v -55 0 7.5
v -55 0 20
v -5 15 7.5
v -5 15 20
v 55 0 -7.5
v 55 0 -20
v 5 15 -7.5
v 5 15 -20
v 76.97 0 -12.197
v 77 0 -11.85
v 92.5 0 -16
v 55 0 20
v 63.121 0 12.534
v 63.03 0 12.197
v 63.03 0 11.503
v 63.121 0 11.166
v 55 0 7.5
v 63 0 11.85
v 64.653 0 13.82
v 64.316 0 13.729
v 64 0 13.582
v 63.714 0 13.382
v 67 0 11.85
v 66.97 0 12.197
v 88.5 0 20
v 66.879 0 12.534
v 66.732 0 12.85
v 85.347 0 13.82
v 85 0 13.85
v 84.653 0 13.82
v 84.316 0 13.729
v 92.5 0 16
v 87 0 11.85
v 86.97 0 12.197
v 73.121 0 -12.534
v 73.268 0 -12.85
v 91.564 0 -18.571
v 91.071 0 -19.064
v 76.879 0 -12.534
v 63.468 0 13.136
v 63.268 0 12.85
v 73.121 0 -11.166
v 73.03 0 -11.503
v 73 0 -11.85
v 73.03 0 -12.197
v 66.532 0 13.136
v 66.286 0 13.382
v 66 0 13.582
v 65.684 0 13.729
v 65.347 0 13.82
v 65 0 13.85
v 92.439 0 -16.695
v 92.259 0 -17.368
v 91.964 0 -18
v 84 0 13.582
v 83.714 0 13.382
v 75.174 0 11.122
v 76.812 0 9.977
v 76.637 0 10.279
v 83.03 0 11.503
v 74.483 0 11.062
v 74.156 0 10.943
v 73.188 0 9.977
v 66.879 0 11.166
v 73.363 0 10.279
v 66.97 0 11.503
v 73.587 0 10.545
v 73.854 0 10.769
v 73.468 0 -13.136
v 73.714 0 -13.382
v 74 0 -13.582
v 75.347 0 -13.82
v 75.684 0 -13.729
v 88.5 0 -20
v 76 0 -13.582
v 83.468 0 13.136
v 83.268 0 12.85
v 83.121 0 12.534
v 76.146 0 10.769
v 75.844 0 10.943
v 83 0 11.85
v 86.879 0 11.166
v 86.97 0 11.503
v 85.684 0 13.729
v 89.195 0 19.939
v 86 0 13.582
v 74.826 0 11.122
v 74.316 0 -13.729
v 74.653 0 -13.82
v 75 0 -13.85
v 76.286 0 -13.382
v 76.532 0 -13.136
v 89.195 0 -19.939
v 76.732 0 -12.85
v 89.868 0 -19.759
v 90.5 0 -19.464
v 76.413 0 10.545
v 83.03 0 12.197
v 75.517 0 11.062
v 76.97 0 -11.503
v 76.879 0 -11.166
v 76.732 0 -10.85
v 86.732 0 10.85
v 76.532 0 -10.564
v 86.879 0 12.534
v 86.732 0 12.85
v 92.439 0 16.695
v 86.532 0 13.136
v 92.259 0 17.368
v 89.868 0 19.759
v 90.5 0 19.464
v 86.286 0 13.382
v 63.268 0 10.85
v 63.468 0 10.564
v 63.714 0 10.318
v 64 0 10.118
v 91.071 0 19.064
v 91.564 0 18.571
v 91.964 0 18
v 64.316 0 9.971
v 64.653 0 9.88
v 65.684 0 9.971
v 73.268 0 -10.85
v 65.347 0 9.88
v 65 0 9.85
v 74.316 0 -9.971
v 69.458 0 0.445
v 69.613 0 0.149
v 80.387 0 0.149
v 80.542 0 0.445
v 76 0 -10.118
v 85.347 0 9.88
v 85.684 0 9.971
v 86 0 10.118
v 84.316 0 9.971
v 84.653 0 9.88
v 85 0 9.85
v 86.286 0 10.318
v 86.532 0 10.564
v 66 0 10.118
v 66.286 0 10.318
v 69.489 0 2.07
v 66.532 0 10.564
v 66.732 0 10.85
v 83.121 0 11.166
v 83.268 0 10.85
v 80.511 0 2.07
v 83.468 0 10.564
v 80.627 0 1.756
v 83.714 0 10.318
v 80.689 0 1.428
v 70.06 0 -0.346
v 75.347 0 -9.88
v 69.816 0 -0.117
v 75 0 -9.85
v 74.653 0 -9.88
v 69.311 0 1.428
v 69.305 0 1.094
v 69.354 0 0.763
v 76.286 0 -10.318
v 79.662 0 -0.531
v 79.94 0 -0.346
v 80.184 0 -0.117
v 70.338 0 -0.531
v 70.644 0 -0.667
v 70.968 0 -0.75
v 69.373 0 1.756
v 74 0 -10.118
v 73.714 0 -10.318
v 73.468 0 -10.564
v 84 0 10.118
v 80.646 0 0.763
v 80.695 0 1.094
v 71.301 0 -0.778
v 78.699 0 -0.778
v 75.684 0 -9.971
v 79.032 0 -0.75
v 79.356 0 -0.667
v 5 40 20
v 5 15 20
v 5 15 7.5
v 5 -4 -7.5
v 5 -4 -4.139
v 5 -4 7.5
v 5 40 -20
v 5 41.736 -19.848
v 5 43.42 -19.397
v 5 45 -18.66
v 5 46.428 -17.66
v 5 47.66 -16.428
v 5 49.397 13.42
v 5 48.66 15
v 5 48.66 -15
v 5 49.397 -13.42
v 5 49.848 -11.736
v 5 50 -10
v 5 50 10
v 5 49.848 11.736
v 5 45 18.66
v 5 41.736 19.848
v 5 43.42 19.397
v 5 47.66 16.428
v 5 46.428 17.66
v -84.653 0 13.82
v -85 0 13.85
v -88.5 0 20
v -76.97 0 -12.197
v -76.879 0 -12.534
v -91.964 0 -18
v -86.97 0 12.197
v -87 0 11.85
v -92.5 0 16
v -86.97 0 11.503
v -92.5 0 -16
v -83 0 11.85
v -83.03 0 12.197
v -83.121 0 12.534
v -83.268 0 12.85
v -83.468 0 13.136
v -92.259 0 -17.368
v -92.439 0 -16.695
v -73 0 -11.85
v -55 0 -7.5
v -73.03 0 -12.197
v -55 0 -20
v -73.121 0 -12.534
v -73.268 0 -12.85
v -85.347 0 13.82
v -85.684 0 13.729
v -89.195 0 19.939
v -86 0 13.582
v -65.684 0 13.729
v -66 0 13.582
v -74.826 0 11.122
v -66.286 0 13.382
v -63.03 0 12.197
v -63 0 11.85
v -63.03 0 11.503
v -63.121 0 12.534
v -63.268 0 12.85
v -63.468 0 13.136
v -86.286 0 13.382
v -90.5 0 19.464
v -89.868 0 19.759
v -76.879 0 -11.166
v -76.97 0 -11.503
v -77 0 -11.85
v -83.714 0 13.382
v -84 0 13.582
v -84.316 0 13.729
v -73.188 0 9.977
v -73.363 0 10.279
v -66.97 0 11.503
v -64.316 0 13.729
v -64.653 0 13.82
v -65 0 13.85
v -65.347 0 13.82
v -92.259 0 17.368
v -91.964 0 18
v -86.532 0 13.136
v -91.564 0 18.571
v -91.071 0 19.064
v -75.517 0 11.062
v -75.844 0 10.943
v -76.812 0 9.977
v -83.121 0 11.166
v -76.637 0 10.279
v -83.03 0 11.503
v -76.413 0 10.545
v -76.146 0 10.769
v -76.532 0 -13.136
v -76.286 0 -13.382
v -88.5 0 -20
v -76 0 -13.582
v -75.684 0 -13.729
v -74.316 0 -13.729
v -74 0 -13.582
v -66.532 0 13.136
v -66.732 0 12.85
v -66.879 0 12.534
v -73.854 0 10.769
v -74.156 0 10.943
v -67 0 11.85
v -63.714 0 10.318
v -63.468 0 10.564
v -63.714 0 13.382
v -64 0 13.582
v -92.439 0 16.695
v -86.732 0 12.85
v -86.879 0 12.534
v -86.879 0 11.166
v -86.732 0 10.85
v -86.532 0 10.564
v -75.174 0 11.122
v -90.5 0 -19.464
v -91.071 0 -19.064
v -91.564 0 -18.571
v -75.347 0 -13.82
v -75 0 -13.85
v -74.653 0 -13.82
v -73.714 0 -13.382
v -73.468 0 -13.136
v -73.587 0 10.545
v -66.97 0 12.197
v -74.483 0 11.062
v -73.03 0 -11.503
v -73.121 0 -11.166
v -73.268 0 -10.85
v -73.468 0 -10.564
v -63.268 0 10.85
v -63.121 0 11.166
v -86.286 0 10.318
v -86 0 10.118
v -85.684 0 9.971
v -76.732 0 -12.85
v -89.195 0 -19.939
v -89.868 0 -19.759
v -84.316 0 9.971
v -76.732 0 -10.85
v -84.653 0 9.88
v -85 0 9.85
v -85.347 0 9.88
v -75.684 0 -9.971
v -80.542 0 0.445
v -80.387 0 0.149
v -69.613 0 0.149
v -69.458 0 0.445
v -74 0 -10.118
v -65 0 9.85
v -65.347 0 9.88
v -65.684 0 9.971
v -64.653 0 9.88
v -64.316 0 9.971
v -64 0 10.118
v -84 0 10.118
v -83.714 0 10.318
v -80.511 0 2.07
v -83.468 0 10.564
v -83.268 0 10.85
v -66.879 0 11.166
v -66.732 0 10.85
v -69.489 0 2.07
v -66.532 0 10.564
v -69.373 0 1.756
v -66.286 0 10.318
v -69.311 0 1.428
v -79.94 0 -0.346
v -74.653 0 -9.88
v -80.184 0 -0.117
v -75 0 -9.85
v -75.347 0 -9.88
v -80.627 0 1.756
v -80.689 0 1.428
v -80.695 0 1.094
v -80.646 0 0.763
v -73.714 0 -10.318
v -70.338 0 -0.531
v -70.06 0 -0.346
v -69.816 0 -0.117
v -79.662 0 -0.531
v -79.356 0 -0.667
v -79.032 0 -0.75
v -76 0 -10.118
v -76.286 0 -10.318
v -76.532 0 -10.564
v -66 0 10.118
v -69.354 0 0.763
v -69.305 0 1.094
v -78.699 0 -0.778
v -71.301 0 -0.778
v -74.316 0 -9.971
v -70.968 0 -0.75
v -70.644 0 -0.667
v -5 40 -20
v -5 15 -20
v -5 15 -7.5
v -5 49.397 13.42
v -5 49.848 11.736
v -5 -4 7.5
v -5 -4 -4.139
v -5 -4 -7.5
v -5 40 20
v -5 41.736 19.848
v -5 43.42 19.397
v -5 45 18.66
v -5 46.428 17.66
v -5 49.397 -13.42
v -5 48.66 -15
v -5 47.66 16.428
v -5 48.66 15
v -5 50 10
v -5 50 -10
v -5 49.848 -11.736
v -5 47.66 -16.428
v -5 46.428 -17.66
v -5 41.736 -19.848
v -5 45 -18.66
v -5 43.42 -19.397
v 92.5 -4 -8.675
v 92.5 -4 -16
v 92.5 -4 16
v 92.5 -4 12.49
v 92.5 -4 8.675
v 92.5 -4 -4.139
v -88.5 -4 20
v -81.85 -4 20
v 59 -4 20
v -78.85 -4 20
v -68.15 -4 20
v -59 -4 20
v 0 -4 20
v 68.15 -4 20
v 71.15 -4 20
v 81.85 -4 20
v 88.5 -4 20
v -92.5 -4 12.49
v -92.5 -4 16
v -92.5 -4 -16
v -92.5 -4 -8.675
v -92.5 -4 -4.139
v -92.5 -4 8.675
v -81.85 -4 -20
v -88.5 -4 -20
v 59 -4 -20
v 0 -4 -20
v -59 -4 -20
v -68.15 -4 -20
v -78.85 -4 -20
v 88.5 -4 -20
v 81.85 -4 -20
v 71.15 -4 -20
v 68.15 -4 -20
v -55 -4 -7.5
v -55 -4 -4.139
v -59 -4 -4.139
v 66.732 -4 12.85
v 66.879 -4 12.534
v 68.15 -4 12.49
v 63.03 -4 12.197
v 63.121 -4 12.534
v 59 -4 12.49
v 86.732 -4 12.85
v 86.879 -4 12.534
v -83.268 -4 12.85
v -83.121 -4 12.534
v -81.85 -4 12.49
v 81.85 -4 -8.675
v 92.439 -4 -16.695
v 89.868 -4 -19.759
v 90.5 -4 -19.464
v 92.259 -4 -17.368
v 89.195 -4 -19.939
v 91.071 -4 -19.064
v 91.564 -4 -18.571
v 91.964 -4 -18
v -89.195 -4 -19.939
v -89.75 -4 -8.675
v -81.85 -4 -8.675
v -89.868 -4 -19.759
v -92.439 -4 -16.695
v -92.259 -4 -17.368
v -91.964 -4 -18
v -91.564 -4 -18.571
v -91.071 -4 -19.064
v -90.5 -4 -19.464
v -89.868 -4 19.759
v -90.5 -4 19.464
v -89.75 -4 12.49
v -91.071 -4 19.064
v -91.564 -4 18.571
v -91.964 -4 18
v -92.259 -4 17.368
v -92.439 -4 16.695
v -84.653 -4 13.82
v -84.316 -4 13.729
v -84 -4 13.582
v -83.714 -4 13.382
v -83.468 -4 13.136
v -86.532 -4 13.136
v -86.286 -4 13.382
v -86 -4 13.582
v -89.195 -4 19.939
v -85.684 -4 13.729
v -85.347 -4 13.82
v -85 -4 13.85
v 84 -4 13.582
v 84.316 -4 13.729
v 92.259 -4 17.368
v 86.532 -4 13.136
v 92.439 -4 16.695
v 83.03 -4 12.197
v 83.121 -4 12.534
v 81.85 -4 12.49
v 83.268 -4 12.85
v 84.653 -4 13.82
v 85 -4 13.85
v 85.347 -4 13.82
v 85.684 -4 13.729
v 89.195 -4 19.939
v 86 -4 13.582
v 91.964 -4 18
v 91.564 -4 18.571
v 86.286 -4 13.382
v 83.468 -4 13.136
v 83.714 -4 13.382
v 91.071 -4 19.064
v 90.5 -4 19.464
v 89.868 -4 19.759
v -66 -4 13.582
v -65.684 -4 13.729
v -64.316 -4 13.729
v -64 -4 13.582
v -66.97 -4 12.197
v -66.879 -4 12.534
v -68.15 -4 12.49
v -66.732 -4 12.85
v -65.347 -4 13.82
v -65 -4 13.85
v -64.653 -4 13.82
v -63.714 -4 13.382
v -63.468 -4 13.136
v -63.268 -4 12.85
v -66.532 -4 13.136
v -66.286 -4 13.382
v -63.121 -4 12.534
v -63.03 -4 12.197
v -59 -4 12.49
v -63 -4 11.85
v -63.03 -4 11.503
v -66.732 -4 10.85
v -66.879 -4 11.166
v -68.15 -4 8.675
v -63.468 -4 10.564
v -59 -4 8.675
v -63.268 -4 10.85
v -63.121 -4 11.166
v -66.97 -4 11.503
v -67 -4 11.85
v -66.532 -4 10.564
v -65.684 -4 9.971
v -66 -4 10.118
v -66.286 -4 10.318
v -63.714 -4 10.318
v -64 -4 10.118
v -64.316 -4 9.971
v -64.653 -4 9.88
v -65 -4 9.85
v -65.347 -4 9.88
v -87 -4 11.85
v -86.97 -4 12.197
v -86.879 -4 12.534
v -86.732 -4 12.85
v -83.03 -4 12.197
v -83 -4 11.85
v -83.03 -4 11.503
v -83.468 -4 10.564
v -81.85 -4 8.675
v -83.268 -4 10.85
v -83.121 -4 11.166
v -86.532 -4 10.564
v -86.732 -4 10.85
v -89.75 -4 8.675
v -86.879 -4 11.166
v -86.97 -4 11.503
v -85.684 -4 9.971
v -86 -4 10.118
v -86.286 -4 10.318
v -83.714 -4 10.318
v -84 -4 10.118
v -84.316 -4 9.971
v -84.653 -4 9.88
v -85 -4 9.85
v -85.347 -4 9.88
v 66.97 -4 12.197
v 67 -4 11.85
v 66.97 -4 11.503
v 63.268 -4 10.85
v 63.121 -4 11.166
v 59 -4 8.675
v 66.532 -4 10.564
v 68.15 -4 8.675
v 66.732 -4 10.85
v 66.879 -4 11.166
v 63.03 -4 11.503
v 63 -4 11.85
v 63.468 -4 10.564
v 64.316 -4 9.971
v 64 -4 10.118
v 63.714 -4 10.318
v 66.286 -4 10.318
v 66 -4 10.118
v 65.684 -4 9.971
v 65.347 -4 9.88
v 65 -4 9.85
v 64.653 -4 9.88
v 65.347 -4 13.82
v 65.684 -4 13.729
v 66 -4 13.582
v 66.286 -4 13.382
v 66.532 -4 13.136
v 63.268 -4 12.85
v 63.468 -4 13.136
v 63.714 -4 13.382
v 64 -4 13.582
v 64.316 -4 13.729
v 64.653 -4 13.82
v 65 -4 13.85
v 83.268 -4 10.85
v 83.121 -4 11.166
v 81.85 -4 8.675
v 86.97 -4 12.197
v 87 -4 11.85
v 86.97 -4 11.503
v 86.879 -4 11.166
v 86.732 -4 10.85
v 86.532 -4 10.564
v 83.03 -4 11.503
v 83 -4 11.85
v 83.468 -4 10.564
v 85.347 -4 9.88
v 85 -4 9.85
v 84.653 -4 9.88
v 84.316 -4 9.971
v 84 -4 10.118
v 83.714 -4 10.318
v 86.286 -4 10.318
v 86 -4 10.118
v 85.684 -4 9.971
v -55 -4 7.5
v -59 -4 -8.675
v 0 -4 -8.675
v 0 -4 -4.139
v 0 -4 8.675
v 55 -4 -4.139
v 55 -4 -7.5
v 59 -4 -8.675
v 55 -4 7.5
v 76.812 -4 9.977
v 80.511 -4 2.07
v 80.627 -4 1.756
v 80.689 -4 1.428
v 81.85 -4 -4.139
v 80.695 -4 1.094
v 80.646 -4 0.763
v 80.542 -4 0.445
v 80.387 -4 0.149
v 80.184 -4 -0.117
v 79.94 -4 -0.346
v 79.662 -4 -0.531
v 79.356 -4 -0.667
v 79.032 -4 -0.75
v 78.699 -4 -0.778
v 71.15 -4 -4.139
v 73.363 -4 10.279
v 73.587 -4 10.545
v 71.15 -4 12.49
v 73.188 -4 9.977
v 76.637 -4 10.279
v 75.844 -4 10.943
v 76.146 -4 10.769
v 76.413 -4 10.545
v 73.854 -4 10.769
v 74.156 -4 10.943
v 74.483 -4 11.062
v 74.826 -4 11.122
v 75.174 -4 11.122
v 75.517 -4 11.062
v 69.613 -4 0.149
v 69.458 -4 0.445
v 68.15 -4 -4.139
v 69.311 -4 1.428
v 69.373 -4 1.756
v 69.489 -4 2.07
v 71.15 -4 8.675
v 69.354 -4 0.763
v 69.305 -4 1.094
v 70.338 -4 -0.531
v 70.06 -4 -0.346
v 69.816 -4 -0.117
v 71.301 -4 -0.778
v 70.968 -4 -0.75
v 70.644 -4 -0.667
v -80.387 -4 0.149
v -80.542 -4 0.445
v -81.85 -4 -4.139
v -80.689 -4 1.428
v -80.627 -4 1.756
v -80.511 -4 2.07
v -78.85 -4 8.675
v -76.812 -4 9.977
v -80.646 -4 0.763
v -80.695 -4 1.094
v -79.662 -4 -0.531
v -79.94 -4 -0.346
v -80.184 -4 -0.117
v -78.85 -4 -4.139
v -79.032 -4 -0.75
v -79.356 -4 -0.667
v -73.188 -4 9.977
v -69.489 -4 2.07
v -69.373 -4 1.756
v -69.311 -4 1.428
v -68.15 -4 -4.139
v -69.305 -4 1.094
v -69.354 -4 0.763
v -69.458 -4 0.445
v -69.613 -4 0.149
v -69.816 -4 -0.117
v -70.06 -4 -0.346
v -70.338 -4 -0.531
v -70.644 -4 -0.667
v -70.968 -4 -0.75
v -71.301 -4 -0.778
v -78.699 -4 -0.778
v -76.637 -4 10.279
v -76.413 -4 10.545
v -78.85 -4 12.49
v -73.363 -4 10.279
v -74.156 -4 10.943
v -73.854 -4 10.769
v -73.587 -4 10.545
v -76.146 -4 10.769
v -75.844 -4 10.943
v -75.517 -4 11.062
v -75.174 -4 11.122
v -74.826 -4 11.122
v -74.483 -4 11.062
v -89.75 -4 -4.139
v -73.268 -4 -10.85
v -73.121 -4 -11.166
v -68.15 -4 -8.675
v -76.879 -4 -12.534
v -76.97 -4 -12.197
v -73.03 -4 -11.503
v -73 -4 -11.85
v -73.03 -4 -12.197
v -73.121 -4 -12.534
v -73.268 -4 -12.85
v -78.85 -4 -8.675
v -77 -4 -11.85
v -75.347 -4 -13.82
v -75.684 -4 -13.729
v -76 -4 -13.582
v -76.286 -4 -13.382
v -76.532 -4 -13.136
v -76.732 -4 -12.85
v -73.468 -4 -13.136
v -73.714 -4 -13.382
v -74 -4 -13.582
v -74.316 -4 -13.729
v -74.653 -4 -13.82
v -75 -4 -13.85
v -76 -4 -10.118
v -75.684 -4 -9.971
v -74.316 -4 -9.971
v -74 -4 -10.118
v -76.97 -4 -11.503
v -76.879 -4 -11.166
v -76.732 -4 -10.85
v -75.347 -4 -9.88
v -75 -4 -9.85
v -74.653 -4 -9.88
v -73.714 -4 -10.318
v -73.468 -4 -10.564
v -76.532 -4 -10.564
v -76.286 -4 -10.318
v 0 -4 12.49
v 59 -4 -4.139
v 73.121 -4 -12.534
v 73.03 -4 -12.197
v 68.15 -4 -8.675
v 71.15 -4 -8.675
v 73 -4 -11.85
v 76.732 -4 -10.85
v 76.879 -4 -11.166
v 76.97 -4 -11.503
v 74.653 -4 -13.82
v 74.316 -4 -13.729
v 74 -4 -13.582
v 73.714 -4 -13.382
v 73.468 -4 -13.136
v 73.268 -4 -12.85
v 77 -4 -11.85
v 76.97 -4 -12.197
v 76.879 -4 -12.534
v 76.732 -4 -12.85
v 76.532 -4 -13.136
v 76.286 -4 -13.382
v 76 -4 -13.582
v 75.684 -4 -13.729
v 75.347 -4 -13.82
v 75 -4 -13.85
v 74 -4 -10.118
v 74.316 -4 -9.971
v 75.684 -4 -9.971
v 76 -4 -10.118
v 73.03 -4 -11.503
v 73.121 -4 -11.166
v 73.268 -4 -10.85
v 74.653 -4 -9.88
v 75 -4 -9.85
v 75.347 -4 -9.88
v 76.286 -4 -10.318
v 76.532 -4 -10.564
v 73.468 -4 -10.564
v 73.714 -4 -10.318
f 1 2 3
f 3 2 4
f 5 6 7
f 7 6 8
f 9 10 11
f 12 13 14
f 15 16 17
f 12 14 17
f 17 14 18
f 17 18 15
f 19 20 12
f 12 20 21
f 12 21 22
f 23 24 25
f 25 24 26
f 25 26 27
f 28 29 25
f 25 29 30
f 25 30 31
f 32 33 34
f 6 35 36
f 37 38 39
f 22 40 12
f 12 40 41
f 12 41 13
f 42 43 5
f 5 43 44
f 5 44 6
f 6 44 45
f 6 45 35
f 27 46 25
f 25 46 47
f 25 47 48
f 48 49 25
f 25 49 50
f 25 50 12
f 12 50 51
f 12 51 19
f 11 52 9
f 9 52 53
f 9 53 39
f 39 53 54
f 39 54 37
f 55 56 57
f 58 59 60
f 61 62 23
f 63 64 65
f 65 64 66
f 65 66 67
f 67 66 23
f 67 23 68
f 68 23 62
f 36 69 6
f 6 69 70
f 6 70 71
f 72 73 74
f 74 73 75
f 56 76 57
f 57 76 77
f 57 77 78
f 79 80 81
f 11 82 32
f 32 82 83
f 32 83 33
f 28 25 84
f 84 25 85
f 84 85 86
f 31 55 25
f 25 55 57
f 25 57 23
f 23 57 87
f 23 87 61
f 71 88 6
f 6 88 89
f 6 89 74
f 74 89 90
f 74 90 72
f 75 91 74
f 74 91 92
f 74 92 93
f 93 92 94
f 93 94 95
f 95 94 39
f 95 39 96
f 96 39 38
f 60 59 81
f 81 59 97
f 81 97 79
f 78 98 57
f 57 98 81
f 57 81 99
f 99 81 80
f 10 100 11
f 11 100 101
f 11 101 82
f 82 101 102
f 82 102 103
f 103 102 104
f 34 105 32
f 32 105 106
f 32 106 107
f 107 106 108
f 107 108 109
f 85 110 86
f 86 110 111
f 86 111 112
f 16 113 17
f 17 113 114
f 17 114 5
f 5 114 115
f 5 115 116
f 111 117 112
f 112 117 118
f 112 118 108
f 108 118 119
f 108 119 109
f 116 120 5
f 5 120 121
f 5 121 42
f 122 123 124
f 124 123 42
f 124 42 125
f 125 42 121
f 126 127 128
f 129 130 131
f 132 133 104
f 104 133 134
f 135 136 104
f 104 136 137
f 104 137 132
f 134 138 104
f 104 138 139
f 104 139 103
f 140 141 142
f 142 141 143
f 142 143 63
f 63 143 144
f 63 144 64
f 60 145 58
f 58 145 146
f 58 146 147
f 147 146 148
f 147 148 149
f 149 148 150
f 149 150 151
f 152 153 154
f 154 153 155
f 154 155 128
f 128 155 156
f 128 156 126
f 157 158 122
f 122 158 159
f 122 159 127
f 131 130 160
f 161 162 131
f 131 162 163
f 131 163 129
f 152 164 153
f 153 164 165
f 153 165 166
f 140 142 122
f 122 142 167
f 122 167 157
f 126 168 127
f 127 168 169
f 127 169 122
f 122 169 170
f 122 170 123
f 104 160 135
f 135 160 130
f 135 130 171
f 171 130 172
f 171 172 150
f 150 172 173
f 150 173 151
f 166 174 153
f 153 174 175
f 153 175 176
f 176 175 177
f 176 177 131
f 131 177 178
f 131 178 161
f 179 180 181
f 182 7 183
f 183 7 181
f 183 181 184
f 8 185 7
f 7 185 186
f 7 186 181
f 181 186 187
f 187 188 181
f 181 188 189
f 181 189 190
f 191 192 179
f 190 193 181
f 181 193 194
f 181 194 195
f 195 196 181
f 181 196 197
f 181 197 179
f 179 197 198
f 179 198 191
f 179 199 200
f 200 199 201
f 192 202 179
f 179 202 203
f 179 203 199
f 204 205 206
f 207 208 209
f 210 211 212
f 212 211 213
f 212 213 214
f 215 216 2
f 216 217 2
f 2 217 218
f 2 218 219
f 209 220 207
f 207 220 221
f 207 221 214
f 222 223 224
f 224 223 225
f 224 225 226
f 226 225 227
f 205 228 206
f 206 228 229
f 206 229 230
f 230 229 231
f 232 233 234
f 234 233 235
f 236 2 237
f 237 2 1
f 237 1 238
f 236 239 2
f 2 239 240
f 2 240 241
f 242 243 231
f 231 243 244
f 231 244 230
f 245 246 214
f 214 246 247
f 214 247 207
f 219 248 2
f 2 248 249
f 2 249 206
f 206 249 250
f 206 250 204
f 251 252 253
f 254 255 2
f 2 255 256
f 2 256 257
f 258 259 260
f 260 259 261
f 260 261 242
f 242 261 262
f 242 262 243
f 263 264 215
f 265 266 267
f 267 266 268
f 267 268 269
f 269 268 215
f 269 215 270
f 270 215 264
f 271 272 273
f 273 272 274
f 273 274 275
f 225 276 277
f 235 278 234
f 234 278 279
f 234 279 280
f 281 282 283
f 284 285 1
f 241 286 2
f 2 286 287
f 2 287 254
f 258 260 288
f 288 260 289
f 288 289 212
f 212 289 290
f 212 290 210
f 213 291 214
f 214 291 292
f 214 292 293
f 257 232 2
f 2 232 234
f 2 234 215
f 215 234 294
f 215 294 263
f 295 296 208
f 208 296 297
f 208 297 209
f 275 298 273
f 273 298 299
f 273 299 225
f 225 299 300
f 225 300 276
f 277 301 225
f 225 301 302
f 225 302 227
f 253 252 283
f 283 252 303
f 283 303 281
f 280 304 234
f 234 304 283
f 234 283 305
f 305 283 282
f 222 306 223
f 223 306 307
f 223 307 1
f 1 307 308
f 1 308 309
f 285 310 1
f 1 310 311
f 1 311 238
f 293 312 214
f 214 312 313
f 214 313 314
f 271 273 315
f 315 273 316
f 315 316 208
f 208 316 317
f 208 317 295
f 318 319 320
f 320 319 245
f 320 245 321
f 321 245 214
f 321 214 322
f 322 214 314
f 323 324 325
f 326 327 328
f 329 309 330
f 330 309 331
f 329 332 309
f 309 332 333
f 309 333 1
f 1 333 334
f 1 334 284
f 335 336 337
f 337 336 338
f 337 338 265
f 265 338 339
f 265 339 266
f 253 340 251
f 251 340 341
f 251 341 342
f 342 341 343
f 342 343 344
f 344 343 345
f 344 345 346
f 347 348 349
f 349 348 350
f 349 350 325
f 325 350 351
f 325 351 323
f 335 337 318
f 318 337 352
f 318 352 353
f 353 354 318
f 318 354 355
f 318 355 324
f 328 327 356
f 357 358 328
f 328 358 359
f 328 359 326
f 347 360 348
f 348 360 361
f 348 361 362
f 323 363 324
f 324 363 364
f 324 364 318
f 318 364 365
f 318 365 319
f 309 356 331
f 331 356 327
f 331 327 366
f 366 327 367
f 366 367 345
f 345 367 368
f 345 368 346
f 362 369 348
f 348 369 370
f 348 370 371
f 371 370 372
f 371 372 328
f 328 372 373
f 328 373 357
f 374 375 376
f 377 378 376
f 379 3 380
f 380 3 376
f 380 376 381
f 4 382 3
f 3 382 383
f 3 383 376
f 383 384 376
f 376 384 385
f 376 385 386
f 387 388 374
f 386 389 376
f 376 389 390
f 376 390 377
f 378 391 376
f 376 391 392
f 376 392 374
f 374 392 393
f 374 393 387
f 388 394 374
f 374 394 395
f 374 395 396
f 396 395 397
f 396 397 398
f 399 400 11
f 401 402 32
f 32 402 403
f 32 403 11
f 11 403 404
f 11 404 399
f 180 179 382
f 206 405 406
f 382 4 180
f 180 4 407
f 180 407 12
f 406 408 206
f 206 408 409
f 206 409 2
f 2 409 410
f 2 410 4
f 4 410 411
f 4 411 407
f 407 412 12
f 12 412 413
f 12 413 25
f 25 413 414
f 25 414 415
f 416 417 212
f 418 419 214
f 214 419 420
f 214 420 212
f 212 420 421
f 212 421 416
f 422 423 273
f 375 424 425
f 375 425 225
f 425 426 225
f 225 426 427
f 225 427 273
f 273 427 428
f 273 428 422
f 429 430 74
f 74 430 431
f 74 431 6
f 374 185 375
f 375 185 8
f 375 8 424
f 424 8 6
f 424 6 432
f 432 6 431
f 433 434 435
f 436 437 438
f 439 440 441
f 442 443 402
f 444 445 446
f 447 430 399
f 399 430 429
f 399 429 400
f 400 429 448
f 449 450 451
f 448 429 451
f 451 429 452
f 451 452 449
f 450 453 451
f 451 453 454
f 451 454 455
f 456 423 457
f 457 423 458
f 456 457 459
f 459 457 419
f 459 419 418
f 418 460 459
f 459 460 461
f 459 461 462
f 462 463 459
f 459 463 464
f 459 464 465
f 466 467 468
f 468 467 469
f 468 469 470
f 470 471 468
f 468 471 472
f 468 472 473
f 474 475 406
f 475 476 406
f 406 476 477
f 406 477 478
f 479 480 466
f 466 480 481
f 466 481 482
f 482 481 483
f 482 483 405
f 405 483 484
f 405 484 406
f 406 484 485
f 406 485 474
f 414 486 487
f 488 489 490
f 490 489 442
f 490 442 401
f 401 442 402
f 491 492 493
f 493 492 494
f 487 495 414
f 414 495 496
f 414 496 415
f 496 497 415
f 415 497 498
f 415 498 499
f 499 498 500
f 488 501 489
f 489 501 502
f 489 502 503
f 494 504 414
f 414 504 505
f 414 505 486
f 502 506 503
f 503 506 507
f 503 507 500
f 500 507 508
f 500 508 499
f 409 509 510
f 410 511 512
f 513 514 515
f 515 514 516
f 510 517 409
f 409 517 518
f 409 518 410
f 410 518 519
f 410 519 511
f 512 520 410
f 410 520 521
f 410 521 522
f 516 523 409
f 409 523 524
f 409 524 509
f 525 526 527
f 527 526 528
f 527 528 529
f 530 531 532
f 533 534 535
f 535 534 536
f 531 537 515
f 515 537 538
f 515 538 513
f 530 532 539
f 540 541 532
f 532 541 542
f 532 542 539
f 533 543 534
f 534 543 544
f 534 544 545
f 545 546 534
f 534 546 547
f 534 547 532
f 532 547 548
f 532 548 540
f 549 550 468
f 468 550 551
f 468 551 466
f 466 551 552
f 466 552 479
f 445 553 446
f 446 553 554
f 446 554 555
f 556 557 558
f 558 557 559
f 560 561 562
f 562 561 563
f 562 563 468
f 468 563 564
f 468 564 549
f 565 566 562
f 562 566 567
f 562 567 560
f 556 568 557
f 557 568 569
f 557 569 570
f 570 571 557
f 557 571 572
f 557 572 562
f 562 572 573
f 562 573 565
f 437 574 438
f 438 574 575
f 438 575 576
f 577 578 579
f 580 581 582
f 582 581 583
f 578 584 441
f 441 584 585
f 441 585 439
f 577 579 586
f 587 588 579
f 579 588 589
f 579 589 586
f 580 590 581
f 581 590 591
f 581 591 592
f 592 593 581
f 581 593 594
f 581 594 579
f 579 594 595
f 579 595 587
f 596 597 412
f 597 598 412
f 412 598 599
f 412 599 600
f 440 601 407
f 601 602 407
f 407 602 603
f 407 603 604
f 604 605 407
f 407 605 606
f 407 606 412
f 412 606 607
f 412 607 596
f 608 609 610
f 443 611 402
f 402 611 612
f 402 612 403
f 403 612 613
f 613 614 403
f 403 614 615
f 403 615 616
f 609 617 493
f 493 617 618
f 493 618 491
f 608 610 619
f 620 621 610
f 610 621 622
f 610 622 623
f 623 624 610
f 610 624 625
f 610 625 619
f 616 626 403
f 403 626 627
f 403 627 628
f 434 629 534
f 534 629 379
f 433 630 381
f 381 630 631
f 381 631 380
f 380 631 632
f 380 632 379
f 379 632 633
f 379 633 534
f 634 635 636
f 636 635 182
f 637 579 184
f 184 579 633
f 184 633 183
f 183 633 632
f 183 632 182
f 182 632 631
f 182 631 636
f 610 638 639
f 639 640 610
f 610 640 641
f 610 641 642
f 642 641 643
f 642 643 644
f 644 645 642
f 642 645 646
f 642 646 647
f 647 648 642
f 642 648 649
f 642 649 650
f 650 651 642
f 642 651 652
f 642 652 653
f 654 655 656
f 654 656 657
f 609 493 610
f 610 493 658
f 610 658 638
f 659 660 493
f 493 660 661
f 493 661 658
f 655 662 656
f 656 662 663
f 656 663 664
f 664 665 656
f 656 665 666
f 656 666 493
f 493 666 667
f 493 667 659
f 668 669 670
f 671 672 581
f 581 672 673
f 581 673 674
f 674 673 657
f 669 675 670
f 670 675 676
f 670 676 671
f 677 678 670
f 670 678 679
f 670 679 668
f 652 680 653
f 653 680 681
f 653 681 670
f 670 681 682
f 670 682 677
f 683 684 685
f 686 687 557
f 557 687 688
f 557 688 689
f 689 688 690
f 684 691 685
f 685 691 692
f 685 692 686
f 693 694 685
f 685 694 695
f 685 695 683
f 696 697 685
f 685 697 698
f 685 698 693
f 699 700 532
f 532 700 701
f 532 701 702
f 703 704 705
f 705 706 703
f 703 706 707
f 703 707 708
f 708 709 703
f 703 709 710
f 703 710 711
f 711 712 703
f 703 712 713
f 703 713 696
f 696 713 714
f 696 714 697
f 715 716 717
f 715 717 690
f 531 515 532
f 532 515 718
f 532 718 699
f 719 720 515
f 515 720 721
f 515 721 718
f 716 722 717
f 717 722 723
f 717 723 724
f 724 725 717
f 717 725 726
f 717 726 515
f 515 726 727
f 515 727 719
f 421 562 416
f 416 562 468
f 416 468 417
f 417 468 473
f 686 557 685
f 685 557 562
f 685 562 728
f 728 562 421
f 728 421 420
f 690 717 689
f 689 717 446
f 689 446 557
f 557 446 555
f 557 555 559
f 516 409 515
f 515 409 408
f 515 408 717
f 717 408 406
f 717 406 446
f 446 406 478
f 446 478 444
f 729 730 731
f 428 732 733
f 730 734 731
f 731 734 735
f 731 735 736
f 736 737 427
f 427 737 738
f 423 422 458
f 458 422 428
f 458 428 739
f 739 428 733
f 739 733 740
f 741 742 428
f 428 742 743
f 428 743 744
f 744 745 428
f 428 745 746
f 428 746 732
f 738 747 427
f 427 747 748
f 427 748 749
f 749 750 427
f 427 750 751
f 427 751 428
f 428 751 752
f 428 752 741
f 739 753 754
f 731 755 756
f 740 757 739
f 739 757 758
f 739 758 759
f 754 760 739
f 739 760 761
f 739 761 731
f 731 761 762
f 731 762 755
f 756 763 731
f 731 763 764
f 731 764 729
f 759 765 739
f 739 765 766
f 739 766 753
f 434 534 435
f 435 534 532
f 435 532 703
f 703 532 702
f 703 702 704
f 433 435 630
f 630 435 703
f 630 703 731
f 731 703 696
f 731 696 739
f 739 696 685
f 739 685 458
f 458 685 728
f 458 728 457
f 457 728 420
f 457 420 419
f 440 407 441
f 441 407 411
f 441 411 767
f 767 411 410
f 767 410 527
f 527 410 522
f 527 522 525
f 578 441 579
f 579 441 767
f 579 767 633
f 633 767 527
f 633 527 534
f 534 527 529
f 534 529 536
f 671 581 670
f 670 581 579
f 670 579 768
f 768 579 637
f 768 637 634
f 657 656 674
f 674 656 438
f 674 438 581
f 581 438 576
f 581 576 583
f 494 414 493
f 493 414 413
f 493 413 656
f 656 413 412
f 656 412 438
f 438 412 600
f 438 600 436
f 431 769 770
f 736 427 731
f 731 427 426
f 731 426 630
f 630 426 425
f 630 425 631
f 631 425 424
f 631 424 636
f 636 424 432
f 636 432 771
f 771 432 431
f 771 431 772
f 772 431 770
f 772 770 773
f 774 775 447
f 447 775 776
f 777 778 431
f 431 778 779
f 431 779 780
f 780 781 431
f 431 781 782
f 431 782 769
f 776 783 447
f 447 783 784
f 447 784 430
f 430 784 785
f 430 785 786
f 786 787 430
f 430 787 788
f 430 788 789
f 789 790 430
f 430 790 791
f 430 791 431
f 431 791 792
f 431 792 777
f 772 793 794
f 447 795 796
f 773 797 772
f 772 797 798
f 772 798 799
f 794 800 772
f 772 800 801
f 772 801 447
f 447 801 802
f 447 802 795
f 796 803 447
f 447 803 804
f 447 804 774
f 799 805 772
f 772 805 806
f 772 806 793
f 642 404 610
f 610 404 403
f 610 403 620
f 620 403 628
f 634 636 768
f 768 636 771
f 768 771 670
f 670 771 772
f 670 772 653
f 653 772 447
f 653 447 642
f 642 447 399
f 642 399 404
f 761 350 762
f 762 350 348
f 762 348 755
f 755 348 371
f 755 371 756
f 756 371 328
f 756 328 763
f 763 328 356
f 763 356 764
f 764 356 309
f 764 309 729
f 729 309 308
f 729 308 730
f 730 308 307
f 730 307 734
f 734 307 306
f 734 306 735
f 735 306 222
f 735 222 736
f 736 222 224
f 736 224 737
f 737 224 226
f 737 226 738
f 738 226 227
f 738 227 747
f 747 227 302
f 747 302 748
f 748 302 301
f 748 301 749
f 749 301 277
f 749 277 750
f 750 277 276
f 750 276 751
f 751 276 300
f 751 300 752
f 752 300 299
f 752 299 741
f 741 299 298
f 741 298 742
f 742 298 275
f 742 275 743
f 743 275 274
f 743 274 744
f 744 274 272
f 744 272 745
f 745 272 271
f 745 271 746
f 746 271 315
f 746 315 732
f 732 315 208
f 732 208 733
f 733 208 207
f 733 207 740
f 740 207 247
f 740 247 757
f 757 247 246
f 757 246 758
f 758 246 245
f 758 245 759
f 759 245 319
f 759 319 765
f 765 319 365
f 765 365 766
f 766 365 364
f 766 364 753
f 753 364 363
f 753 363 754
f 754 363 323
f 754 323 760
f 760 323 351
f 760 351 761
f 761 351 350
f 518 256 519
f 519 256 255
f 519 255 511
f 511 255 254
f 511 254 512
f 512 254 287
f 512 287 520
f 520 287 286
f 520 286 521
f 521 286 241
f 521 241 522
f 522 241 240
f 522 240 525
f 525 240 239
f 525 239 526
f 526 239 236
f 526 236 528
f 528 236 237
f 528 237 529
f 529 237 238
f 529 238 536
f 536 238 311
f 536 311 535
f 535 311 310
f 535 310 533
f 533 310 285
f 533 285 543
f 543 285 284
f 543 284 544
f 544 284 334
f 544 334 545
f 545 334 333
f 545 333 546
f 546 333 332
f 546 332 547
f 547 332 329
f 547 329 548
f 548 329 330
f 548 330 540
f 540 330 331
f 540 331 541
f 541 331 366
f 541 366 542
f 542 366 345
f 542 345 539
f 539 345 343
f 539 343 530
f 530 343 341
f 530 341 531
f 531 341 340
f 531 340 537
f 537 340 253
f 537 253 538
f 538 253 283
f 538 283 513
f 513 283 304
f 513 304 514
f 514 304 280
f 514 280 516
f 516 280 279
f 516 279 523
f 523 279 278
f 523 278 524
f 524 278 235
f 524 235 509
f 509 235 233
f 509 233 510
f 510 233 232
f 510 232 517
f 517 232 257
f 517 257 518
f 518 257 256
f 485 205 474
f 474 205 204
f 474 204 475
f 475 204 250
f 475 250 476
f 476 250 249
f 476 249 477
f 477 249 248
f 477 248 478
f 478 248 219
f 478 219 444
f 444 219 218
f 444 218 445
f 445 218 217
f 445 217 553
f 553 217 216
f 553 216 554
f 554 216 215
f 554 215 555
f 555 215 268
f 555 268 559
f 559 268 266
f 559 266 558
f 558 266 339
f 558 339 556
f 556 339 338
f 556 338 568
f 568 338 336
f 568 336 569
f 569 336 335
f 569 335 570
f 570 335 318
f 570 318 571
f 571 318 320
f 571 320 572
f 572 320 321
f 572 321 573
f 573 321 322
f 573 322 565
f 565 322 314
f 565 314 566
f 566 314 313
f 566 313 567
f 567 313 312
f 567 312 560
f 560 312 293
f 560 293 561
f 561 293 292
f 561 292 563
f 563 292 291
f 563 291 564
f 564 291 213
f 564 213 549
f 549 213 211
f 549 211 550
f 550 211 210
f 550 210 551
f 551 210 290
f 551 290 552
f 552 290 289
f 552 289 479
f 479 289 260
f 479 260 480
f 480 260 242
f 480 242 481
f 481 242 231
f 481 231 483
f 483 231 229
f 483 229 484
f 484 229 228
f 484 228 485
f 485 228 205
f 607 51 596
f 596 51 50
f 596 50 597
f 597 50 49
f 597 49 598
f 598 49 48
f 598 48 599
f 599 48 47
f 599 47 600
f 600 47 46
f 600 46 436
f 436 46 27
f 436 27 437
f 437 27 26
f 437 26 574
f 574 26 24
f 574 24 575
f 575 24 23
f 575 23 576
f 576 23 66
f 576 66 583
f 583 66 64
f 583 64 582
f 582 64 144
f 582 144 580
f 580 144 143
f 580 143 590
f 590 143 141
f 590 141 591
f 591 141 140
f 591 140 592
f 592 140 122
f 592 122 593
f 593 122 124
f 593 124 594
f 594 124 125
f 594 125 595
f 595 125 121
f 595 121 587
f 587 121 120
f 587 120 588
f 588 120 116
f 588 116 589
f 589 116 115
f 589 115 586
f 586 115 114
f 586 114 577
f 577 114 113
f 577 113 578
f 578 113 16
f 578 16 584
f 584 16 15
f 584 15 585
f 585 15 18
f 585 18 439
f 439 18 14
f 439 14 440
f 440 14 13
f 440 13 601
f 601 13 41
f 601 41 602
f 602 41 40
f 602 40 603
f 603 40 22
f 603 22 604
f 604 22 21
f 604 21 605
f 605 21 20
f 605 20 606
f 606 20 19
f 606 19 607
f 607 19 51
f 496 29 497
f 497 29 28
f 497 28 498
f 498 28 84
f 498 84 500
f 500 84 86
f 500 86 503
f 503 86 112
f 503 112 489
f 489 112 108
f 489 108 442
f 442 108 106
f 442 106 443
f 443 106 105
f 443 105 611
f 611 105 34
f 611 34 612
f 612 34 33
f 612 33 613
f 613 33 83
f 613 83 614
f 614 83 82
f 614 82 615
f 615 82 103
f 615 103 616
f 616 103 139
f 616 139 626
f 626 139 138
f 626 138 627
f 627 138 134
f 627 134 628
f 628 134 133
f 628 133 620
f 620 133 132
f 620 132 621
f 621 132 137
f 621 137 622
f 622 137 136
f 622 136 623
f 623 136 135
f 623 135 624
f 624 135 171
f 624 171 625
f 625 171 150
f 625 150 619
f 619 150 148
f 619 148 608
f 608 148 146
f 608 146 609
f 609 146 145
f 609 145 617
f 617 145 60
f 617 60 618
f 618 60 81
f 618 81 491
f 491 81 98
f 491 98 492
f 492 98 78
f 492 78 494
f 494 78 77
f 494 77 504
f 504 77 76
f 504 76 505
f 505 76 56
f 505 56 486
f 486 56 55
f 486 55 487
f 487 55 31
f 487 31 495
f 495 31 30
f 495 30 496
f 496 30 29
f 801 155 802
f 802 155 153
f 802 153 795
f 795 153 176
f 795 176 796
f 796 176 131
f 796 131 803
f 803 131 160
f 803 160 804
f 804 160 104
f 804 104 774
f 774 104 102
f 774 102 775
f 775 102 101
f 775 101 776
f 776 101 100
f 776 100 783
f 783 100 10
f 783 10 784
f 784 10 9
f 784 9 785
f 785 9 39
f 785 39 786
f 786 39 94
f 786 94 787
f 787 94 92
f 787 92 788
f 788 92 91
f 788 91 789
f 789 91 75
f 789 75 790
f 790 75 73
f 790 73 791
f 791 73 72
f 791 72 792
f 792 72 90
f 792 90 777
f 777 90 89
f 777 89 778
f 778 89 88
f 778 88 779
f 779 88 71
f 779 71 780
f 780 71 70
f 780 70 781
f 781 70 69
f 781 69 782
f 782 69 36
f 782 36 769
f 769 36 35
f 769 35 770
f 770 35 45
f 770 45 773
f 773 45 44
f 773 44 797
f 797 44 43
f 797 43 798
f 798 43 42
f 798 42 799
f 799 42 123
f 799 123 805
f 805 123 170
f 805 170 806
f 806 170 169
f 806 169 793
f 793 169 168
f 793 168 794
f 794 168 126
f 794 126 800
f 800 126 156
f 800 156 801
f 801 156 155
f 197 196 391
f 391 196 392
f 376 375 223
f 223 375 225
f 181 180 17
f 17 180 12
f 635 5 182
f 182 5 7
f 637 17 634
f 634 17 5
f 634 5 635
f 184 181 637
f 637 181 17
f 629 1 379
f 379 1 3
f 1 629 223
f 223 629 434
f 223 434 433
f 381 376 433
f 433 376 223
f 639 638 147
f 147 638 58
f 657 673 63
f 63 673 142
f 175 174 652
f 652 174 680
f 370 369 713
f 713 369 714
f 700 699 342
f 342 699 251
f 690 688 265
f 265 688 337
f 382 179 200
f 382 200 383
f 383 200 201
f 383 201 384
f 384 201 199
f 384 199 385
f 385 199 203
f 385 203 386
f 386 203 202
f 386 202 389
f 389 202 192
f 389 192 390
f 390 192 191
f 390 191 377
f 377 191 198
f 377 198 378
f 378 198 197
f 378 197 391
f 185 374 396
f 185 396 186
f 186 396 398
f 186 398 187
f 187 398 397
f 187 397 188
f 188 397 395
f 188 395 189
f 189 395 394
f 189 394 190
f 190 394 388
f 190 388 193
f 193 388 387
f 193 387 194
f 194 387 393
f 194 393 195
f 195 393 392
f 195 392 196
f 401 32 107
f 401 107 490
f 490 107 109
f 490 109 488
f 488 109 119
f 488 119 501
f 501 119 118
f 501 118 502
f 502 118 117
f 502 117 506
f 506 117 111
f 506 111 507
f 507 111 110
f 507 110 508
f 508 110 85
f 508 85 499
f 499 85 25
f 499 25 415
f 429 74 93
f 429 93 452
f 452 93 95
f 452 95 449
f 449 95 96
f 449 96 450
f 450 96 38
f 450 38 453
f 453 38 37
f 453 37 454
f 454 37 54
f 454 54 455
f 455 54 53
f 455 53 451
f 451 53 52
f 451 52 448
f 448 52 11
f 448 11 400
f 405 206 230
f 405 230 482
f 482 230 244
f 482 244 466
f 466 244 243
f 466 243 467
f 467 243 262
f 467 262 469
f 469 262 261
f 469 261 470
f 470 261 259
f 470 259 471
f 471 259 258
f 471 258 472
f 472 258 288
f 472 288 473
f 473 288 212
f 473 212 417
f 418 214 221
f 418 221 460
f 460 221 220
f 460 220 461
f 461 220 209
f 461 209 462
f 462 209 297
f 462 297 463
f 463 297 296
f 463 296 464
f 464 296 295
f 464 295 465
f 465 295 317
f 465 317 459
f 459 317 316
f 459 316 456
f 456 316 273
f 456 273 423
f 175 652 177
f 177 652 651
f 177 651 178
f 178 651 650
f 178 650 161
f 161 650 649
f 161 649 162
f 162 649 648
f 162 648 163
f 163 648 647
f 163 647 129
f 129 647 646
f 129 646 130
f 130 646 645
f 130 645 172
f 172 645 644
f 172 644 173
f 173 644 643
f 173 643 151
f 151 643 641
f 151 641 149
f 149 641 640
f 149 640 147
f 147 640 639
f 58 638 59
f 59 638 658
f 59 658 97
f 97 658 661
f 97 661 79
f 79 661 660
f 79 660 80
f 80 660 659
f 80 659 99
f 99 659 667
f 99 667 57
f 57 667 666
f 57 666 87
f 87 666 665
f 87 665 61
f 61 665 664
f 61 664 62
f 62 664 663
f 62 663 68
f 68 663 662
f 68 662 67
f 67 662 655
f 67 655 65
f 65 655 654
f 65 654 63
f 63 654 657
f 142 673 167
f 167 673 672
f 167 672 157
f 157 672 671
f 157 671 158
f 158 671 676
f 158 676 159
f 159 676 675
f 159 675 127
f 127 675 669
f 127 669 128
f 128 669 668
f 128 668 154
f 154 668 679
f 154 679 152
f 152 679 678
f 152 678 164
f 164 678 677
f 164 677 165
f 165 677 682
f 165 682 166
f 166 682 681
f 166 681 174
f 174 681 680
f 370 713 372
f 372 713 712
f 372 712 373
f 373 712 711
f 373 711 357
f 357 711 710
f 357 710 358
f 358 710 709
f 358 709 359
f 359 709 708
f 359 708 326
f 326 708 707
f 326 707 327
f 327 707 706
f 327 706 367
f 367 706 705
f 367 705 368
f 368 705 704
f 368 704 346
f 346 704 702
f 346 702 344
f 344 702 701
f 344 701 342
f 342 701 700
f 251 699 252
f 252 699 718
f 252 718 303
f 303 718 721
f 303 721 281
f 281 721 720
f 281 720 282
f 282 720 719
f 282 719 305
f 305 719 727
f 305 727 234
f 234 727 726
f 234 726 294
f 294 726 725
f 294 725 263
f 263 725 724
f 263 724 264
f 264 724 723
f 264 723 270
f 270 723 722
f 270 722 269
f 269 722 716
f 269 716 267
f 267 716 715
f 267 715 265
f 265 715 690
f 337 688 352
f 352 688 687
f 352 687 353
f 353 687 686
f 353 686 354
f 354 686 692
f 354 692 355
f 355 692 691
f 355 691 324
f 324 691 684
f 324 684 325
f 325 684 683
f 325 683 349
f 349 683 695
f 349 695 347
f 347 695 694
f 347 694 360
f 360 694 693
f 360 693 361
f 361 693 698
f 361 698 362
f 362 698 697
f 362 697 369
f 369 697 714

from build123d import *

# Parameters (mm, degrees)
SKETCH_1_W               = 185
SKETCH_1_H               = 40
EXTRUDE_1_DEPTH          = 4
CUT_EXTRUDE_1_DEPTH      = 95.721961551
CUT_EXTRUDE_1_DEPTH_BACK = 95.721961551
SKETCH_2_R               = 2
SKETCH_3_W               = 10
SKETCH_3_H               = 40
EXTRUDE_2_DEPTH          = 50
EXTRUDE_3_DEPTH          = 20
CUT_EXTRUDE_2_DEPTH      = 108.033873143
CUT_EXTRUDE_2_DEPTH_BACK = 108.033873143
SKETCH_5_W               = 50
SKETCH_5_H               = 15
FILLET_1_R               = 10
FILLET_2_R               = 4
FILLET_3_R               = 2


with BuildPart() as part:
    # 草图1 → 凸台-拉伸1 (new body)
    with BuildSketch(Plane(origin=(0, 0, 0), x_dir=(1, 0, 0), z_dir=(0, 1, 0))):
        Rectangle(SKETCH_1_W, SKETCH_1_H)
    extrude(amount=-EXTRUDE_1_DEPTH)

    # 草图2 → 切除-拉伸1 (cut, two sides: drawn at the far end of the back side and taken through both)
    with BuildSketch(Plane(origin=(0, 0, 0), x_dir=(1, 0, 0), z_dir=(0, 1, 0)).offset(-CUT_EXTRUDE_1_DEPTH_BACK)):
        with Locations(Location((-75, 11.85, 0), (0, 0, 270))):
            Circle(SKETCH_2_R)
        with Locations(Location((-65, -11.85, 0), (0, 0, 270))):
            Circle(SKETCH_2_R)
        with Locations(Location((-85, -11.85, 0), (0, 0, 270))):
            Circle(SKETCH_2_R)
        with Locations(Location((65, -11.85, 0), (0, 0, 270))):
            Circle(SKETCH_2_R)
        with Locations(Location((85, -11.85, 0), (0, 0, 270))):
            Circle(SKETCH_2_R)
        with Locations(Location((75, 11.85, 0), (0, 0, 270))):
            Circle(SKETCH_2_R)
    extrude(amount=CUT_EXTRUDE_1_DEPTH + CUT_EXTRUDE_1_DEPTH_BACK, mode=Mode.SUBTRACT)

    # 草图3 → 凸台-拉伸2 (add)
    with BuildSketch(Plane(origin=(0, 0, 0), x_dir=(1, 0, 0), z_dir=(0, 1, 0))):
        Rectangle(SKETCH_3_W, SKETCH_3_H)
    extrude(amount=EXTRUDE_2_DEPTH)

    # 草图4 → 凸台-拉伸3 (add, symmetric)
    with BuildSketch(Plane.XY):
        Polygon((-5, 0), (-5, 15), (-55, 0), align=None)
        Polygon((5, 15), (55, 0), (5, 0), align=None)
    extrude(amount=EXTRUDE_3_DEPTH, both=True)

    # 草图5 → 切除-拉伸2 (cut, two sides: drawn at the far end of the back side and taken through both)
    with BuildSketch(Plane(origin=(0, 0, 0), x_dir=(1, 0, 0), z_dir=(0, 1, 0)).offset(-CUT_EXTRUDE_2_DEPTH_BACK)):
        with Locations((-30, 0)):
            Rectangle(SKETCH_5_W, SKETCH_5_H)
        Polygon((-81.842684811, 0.77750414), (-75, -13.85), (-68.157315189, 0.77750414), align=None)
        Polygon((75, -13.85), (68.157315189, 0.77750414), (81.842684811, 0.77750414), align=None)
        with Locations((30, 0)):
            Rectangle(SKETCH_5_W, SKETCH_5_H)
    extrude(amount=CUT_EXTRUDE_2_DEPTH + CUT_EXTRUDE_2_DEPTH_BACK, mode=Mode.SUBTRACT)

    # 圆角1
    fillet_1_edges = [part.edges().sort_by_distance(p)[0] for p in [
        (0, 50, -20),
        (0, 50, 20),
    ]]
    fillet(fillet_1_edges, radius=FILLET_1_R)

    # 圆角2
    fillet_2_edges = [part.edges().sort_by_distance(p)[0] for p in [
        (92.5, -2, 20),
        (-92.5, -2, 20),
        (-92.5, -2, -20),
        (92.5, -2, -20),
    ]]
    fillet(fillet_2_edges, radius=FILLET_2_R)

    # 圆角3
    fillet_3_edges = [part.edges().sort_by_distance(p)[0] for p in [
        (-81.842684811, -2, -0.77750414),
        (-68.157315189, -2, -0.77750414),
        (-75, -2, 13.85),
        (81.842684811, -2, -0.77750414),
        (75, -2, 13.85),
        (68.157315189, -2, -0.77750414),
    ]]
    fillet(fillet_3_edges, radius=FILLET_3_R)


solid = part.part
